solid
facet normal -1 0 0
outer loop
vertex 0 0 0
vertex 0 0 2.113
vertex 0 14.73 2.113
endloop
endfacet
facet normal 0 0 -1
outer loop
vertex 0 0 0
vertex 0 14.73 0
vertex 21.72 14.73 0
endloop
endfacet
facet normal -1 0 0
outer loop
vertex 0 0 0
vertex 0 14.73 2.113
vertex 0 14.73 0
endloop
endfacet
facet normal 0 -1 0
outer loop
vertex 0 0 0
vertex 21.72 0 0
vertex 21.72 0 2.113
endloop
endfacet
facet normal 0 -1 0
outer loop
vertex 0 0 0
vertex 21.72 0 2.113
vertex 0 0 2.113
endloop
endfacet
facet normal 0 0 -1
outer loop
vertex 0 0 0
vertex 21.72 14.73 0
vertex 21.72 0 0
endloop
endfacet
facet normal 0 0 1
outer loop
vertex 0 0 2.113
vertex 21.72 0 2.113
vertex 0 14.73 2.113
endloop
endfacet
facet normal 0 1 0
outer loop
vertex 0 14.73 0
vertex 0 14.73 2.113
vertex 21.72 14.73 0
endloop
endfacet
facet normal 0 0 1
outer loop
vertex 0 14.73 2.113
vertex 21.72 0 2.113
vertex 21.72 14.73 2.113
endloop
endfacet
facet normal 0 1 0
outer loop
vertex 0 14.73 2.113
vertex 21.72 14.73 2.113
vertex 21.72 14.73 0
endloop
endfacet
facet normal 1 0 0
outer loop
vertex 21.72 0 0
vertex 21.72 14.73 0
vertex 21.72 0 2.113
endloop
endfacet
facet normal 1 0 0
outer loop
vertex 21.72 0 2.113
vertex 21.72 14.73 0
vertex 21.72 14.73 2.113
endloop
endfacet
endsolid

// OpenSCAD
/* Warning, this is a very basic generator with a lot of approximation 
input data : [MODULE, LFB, 21.72x14.73x2.113mm, 28, , B, C04-21305B]
generated by com.zoubworld.electronics.cad.model3d.Basic
Date : Sun Feb 15 10:50:49 CET 2026
*/

//body
color("black")
translate([0,0,0])
cube([21.72,14.73,2.113], center=false);
